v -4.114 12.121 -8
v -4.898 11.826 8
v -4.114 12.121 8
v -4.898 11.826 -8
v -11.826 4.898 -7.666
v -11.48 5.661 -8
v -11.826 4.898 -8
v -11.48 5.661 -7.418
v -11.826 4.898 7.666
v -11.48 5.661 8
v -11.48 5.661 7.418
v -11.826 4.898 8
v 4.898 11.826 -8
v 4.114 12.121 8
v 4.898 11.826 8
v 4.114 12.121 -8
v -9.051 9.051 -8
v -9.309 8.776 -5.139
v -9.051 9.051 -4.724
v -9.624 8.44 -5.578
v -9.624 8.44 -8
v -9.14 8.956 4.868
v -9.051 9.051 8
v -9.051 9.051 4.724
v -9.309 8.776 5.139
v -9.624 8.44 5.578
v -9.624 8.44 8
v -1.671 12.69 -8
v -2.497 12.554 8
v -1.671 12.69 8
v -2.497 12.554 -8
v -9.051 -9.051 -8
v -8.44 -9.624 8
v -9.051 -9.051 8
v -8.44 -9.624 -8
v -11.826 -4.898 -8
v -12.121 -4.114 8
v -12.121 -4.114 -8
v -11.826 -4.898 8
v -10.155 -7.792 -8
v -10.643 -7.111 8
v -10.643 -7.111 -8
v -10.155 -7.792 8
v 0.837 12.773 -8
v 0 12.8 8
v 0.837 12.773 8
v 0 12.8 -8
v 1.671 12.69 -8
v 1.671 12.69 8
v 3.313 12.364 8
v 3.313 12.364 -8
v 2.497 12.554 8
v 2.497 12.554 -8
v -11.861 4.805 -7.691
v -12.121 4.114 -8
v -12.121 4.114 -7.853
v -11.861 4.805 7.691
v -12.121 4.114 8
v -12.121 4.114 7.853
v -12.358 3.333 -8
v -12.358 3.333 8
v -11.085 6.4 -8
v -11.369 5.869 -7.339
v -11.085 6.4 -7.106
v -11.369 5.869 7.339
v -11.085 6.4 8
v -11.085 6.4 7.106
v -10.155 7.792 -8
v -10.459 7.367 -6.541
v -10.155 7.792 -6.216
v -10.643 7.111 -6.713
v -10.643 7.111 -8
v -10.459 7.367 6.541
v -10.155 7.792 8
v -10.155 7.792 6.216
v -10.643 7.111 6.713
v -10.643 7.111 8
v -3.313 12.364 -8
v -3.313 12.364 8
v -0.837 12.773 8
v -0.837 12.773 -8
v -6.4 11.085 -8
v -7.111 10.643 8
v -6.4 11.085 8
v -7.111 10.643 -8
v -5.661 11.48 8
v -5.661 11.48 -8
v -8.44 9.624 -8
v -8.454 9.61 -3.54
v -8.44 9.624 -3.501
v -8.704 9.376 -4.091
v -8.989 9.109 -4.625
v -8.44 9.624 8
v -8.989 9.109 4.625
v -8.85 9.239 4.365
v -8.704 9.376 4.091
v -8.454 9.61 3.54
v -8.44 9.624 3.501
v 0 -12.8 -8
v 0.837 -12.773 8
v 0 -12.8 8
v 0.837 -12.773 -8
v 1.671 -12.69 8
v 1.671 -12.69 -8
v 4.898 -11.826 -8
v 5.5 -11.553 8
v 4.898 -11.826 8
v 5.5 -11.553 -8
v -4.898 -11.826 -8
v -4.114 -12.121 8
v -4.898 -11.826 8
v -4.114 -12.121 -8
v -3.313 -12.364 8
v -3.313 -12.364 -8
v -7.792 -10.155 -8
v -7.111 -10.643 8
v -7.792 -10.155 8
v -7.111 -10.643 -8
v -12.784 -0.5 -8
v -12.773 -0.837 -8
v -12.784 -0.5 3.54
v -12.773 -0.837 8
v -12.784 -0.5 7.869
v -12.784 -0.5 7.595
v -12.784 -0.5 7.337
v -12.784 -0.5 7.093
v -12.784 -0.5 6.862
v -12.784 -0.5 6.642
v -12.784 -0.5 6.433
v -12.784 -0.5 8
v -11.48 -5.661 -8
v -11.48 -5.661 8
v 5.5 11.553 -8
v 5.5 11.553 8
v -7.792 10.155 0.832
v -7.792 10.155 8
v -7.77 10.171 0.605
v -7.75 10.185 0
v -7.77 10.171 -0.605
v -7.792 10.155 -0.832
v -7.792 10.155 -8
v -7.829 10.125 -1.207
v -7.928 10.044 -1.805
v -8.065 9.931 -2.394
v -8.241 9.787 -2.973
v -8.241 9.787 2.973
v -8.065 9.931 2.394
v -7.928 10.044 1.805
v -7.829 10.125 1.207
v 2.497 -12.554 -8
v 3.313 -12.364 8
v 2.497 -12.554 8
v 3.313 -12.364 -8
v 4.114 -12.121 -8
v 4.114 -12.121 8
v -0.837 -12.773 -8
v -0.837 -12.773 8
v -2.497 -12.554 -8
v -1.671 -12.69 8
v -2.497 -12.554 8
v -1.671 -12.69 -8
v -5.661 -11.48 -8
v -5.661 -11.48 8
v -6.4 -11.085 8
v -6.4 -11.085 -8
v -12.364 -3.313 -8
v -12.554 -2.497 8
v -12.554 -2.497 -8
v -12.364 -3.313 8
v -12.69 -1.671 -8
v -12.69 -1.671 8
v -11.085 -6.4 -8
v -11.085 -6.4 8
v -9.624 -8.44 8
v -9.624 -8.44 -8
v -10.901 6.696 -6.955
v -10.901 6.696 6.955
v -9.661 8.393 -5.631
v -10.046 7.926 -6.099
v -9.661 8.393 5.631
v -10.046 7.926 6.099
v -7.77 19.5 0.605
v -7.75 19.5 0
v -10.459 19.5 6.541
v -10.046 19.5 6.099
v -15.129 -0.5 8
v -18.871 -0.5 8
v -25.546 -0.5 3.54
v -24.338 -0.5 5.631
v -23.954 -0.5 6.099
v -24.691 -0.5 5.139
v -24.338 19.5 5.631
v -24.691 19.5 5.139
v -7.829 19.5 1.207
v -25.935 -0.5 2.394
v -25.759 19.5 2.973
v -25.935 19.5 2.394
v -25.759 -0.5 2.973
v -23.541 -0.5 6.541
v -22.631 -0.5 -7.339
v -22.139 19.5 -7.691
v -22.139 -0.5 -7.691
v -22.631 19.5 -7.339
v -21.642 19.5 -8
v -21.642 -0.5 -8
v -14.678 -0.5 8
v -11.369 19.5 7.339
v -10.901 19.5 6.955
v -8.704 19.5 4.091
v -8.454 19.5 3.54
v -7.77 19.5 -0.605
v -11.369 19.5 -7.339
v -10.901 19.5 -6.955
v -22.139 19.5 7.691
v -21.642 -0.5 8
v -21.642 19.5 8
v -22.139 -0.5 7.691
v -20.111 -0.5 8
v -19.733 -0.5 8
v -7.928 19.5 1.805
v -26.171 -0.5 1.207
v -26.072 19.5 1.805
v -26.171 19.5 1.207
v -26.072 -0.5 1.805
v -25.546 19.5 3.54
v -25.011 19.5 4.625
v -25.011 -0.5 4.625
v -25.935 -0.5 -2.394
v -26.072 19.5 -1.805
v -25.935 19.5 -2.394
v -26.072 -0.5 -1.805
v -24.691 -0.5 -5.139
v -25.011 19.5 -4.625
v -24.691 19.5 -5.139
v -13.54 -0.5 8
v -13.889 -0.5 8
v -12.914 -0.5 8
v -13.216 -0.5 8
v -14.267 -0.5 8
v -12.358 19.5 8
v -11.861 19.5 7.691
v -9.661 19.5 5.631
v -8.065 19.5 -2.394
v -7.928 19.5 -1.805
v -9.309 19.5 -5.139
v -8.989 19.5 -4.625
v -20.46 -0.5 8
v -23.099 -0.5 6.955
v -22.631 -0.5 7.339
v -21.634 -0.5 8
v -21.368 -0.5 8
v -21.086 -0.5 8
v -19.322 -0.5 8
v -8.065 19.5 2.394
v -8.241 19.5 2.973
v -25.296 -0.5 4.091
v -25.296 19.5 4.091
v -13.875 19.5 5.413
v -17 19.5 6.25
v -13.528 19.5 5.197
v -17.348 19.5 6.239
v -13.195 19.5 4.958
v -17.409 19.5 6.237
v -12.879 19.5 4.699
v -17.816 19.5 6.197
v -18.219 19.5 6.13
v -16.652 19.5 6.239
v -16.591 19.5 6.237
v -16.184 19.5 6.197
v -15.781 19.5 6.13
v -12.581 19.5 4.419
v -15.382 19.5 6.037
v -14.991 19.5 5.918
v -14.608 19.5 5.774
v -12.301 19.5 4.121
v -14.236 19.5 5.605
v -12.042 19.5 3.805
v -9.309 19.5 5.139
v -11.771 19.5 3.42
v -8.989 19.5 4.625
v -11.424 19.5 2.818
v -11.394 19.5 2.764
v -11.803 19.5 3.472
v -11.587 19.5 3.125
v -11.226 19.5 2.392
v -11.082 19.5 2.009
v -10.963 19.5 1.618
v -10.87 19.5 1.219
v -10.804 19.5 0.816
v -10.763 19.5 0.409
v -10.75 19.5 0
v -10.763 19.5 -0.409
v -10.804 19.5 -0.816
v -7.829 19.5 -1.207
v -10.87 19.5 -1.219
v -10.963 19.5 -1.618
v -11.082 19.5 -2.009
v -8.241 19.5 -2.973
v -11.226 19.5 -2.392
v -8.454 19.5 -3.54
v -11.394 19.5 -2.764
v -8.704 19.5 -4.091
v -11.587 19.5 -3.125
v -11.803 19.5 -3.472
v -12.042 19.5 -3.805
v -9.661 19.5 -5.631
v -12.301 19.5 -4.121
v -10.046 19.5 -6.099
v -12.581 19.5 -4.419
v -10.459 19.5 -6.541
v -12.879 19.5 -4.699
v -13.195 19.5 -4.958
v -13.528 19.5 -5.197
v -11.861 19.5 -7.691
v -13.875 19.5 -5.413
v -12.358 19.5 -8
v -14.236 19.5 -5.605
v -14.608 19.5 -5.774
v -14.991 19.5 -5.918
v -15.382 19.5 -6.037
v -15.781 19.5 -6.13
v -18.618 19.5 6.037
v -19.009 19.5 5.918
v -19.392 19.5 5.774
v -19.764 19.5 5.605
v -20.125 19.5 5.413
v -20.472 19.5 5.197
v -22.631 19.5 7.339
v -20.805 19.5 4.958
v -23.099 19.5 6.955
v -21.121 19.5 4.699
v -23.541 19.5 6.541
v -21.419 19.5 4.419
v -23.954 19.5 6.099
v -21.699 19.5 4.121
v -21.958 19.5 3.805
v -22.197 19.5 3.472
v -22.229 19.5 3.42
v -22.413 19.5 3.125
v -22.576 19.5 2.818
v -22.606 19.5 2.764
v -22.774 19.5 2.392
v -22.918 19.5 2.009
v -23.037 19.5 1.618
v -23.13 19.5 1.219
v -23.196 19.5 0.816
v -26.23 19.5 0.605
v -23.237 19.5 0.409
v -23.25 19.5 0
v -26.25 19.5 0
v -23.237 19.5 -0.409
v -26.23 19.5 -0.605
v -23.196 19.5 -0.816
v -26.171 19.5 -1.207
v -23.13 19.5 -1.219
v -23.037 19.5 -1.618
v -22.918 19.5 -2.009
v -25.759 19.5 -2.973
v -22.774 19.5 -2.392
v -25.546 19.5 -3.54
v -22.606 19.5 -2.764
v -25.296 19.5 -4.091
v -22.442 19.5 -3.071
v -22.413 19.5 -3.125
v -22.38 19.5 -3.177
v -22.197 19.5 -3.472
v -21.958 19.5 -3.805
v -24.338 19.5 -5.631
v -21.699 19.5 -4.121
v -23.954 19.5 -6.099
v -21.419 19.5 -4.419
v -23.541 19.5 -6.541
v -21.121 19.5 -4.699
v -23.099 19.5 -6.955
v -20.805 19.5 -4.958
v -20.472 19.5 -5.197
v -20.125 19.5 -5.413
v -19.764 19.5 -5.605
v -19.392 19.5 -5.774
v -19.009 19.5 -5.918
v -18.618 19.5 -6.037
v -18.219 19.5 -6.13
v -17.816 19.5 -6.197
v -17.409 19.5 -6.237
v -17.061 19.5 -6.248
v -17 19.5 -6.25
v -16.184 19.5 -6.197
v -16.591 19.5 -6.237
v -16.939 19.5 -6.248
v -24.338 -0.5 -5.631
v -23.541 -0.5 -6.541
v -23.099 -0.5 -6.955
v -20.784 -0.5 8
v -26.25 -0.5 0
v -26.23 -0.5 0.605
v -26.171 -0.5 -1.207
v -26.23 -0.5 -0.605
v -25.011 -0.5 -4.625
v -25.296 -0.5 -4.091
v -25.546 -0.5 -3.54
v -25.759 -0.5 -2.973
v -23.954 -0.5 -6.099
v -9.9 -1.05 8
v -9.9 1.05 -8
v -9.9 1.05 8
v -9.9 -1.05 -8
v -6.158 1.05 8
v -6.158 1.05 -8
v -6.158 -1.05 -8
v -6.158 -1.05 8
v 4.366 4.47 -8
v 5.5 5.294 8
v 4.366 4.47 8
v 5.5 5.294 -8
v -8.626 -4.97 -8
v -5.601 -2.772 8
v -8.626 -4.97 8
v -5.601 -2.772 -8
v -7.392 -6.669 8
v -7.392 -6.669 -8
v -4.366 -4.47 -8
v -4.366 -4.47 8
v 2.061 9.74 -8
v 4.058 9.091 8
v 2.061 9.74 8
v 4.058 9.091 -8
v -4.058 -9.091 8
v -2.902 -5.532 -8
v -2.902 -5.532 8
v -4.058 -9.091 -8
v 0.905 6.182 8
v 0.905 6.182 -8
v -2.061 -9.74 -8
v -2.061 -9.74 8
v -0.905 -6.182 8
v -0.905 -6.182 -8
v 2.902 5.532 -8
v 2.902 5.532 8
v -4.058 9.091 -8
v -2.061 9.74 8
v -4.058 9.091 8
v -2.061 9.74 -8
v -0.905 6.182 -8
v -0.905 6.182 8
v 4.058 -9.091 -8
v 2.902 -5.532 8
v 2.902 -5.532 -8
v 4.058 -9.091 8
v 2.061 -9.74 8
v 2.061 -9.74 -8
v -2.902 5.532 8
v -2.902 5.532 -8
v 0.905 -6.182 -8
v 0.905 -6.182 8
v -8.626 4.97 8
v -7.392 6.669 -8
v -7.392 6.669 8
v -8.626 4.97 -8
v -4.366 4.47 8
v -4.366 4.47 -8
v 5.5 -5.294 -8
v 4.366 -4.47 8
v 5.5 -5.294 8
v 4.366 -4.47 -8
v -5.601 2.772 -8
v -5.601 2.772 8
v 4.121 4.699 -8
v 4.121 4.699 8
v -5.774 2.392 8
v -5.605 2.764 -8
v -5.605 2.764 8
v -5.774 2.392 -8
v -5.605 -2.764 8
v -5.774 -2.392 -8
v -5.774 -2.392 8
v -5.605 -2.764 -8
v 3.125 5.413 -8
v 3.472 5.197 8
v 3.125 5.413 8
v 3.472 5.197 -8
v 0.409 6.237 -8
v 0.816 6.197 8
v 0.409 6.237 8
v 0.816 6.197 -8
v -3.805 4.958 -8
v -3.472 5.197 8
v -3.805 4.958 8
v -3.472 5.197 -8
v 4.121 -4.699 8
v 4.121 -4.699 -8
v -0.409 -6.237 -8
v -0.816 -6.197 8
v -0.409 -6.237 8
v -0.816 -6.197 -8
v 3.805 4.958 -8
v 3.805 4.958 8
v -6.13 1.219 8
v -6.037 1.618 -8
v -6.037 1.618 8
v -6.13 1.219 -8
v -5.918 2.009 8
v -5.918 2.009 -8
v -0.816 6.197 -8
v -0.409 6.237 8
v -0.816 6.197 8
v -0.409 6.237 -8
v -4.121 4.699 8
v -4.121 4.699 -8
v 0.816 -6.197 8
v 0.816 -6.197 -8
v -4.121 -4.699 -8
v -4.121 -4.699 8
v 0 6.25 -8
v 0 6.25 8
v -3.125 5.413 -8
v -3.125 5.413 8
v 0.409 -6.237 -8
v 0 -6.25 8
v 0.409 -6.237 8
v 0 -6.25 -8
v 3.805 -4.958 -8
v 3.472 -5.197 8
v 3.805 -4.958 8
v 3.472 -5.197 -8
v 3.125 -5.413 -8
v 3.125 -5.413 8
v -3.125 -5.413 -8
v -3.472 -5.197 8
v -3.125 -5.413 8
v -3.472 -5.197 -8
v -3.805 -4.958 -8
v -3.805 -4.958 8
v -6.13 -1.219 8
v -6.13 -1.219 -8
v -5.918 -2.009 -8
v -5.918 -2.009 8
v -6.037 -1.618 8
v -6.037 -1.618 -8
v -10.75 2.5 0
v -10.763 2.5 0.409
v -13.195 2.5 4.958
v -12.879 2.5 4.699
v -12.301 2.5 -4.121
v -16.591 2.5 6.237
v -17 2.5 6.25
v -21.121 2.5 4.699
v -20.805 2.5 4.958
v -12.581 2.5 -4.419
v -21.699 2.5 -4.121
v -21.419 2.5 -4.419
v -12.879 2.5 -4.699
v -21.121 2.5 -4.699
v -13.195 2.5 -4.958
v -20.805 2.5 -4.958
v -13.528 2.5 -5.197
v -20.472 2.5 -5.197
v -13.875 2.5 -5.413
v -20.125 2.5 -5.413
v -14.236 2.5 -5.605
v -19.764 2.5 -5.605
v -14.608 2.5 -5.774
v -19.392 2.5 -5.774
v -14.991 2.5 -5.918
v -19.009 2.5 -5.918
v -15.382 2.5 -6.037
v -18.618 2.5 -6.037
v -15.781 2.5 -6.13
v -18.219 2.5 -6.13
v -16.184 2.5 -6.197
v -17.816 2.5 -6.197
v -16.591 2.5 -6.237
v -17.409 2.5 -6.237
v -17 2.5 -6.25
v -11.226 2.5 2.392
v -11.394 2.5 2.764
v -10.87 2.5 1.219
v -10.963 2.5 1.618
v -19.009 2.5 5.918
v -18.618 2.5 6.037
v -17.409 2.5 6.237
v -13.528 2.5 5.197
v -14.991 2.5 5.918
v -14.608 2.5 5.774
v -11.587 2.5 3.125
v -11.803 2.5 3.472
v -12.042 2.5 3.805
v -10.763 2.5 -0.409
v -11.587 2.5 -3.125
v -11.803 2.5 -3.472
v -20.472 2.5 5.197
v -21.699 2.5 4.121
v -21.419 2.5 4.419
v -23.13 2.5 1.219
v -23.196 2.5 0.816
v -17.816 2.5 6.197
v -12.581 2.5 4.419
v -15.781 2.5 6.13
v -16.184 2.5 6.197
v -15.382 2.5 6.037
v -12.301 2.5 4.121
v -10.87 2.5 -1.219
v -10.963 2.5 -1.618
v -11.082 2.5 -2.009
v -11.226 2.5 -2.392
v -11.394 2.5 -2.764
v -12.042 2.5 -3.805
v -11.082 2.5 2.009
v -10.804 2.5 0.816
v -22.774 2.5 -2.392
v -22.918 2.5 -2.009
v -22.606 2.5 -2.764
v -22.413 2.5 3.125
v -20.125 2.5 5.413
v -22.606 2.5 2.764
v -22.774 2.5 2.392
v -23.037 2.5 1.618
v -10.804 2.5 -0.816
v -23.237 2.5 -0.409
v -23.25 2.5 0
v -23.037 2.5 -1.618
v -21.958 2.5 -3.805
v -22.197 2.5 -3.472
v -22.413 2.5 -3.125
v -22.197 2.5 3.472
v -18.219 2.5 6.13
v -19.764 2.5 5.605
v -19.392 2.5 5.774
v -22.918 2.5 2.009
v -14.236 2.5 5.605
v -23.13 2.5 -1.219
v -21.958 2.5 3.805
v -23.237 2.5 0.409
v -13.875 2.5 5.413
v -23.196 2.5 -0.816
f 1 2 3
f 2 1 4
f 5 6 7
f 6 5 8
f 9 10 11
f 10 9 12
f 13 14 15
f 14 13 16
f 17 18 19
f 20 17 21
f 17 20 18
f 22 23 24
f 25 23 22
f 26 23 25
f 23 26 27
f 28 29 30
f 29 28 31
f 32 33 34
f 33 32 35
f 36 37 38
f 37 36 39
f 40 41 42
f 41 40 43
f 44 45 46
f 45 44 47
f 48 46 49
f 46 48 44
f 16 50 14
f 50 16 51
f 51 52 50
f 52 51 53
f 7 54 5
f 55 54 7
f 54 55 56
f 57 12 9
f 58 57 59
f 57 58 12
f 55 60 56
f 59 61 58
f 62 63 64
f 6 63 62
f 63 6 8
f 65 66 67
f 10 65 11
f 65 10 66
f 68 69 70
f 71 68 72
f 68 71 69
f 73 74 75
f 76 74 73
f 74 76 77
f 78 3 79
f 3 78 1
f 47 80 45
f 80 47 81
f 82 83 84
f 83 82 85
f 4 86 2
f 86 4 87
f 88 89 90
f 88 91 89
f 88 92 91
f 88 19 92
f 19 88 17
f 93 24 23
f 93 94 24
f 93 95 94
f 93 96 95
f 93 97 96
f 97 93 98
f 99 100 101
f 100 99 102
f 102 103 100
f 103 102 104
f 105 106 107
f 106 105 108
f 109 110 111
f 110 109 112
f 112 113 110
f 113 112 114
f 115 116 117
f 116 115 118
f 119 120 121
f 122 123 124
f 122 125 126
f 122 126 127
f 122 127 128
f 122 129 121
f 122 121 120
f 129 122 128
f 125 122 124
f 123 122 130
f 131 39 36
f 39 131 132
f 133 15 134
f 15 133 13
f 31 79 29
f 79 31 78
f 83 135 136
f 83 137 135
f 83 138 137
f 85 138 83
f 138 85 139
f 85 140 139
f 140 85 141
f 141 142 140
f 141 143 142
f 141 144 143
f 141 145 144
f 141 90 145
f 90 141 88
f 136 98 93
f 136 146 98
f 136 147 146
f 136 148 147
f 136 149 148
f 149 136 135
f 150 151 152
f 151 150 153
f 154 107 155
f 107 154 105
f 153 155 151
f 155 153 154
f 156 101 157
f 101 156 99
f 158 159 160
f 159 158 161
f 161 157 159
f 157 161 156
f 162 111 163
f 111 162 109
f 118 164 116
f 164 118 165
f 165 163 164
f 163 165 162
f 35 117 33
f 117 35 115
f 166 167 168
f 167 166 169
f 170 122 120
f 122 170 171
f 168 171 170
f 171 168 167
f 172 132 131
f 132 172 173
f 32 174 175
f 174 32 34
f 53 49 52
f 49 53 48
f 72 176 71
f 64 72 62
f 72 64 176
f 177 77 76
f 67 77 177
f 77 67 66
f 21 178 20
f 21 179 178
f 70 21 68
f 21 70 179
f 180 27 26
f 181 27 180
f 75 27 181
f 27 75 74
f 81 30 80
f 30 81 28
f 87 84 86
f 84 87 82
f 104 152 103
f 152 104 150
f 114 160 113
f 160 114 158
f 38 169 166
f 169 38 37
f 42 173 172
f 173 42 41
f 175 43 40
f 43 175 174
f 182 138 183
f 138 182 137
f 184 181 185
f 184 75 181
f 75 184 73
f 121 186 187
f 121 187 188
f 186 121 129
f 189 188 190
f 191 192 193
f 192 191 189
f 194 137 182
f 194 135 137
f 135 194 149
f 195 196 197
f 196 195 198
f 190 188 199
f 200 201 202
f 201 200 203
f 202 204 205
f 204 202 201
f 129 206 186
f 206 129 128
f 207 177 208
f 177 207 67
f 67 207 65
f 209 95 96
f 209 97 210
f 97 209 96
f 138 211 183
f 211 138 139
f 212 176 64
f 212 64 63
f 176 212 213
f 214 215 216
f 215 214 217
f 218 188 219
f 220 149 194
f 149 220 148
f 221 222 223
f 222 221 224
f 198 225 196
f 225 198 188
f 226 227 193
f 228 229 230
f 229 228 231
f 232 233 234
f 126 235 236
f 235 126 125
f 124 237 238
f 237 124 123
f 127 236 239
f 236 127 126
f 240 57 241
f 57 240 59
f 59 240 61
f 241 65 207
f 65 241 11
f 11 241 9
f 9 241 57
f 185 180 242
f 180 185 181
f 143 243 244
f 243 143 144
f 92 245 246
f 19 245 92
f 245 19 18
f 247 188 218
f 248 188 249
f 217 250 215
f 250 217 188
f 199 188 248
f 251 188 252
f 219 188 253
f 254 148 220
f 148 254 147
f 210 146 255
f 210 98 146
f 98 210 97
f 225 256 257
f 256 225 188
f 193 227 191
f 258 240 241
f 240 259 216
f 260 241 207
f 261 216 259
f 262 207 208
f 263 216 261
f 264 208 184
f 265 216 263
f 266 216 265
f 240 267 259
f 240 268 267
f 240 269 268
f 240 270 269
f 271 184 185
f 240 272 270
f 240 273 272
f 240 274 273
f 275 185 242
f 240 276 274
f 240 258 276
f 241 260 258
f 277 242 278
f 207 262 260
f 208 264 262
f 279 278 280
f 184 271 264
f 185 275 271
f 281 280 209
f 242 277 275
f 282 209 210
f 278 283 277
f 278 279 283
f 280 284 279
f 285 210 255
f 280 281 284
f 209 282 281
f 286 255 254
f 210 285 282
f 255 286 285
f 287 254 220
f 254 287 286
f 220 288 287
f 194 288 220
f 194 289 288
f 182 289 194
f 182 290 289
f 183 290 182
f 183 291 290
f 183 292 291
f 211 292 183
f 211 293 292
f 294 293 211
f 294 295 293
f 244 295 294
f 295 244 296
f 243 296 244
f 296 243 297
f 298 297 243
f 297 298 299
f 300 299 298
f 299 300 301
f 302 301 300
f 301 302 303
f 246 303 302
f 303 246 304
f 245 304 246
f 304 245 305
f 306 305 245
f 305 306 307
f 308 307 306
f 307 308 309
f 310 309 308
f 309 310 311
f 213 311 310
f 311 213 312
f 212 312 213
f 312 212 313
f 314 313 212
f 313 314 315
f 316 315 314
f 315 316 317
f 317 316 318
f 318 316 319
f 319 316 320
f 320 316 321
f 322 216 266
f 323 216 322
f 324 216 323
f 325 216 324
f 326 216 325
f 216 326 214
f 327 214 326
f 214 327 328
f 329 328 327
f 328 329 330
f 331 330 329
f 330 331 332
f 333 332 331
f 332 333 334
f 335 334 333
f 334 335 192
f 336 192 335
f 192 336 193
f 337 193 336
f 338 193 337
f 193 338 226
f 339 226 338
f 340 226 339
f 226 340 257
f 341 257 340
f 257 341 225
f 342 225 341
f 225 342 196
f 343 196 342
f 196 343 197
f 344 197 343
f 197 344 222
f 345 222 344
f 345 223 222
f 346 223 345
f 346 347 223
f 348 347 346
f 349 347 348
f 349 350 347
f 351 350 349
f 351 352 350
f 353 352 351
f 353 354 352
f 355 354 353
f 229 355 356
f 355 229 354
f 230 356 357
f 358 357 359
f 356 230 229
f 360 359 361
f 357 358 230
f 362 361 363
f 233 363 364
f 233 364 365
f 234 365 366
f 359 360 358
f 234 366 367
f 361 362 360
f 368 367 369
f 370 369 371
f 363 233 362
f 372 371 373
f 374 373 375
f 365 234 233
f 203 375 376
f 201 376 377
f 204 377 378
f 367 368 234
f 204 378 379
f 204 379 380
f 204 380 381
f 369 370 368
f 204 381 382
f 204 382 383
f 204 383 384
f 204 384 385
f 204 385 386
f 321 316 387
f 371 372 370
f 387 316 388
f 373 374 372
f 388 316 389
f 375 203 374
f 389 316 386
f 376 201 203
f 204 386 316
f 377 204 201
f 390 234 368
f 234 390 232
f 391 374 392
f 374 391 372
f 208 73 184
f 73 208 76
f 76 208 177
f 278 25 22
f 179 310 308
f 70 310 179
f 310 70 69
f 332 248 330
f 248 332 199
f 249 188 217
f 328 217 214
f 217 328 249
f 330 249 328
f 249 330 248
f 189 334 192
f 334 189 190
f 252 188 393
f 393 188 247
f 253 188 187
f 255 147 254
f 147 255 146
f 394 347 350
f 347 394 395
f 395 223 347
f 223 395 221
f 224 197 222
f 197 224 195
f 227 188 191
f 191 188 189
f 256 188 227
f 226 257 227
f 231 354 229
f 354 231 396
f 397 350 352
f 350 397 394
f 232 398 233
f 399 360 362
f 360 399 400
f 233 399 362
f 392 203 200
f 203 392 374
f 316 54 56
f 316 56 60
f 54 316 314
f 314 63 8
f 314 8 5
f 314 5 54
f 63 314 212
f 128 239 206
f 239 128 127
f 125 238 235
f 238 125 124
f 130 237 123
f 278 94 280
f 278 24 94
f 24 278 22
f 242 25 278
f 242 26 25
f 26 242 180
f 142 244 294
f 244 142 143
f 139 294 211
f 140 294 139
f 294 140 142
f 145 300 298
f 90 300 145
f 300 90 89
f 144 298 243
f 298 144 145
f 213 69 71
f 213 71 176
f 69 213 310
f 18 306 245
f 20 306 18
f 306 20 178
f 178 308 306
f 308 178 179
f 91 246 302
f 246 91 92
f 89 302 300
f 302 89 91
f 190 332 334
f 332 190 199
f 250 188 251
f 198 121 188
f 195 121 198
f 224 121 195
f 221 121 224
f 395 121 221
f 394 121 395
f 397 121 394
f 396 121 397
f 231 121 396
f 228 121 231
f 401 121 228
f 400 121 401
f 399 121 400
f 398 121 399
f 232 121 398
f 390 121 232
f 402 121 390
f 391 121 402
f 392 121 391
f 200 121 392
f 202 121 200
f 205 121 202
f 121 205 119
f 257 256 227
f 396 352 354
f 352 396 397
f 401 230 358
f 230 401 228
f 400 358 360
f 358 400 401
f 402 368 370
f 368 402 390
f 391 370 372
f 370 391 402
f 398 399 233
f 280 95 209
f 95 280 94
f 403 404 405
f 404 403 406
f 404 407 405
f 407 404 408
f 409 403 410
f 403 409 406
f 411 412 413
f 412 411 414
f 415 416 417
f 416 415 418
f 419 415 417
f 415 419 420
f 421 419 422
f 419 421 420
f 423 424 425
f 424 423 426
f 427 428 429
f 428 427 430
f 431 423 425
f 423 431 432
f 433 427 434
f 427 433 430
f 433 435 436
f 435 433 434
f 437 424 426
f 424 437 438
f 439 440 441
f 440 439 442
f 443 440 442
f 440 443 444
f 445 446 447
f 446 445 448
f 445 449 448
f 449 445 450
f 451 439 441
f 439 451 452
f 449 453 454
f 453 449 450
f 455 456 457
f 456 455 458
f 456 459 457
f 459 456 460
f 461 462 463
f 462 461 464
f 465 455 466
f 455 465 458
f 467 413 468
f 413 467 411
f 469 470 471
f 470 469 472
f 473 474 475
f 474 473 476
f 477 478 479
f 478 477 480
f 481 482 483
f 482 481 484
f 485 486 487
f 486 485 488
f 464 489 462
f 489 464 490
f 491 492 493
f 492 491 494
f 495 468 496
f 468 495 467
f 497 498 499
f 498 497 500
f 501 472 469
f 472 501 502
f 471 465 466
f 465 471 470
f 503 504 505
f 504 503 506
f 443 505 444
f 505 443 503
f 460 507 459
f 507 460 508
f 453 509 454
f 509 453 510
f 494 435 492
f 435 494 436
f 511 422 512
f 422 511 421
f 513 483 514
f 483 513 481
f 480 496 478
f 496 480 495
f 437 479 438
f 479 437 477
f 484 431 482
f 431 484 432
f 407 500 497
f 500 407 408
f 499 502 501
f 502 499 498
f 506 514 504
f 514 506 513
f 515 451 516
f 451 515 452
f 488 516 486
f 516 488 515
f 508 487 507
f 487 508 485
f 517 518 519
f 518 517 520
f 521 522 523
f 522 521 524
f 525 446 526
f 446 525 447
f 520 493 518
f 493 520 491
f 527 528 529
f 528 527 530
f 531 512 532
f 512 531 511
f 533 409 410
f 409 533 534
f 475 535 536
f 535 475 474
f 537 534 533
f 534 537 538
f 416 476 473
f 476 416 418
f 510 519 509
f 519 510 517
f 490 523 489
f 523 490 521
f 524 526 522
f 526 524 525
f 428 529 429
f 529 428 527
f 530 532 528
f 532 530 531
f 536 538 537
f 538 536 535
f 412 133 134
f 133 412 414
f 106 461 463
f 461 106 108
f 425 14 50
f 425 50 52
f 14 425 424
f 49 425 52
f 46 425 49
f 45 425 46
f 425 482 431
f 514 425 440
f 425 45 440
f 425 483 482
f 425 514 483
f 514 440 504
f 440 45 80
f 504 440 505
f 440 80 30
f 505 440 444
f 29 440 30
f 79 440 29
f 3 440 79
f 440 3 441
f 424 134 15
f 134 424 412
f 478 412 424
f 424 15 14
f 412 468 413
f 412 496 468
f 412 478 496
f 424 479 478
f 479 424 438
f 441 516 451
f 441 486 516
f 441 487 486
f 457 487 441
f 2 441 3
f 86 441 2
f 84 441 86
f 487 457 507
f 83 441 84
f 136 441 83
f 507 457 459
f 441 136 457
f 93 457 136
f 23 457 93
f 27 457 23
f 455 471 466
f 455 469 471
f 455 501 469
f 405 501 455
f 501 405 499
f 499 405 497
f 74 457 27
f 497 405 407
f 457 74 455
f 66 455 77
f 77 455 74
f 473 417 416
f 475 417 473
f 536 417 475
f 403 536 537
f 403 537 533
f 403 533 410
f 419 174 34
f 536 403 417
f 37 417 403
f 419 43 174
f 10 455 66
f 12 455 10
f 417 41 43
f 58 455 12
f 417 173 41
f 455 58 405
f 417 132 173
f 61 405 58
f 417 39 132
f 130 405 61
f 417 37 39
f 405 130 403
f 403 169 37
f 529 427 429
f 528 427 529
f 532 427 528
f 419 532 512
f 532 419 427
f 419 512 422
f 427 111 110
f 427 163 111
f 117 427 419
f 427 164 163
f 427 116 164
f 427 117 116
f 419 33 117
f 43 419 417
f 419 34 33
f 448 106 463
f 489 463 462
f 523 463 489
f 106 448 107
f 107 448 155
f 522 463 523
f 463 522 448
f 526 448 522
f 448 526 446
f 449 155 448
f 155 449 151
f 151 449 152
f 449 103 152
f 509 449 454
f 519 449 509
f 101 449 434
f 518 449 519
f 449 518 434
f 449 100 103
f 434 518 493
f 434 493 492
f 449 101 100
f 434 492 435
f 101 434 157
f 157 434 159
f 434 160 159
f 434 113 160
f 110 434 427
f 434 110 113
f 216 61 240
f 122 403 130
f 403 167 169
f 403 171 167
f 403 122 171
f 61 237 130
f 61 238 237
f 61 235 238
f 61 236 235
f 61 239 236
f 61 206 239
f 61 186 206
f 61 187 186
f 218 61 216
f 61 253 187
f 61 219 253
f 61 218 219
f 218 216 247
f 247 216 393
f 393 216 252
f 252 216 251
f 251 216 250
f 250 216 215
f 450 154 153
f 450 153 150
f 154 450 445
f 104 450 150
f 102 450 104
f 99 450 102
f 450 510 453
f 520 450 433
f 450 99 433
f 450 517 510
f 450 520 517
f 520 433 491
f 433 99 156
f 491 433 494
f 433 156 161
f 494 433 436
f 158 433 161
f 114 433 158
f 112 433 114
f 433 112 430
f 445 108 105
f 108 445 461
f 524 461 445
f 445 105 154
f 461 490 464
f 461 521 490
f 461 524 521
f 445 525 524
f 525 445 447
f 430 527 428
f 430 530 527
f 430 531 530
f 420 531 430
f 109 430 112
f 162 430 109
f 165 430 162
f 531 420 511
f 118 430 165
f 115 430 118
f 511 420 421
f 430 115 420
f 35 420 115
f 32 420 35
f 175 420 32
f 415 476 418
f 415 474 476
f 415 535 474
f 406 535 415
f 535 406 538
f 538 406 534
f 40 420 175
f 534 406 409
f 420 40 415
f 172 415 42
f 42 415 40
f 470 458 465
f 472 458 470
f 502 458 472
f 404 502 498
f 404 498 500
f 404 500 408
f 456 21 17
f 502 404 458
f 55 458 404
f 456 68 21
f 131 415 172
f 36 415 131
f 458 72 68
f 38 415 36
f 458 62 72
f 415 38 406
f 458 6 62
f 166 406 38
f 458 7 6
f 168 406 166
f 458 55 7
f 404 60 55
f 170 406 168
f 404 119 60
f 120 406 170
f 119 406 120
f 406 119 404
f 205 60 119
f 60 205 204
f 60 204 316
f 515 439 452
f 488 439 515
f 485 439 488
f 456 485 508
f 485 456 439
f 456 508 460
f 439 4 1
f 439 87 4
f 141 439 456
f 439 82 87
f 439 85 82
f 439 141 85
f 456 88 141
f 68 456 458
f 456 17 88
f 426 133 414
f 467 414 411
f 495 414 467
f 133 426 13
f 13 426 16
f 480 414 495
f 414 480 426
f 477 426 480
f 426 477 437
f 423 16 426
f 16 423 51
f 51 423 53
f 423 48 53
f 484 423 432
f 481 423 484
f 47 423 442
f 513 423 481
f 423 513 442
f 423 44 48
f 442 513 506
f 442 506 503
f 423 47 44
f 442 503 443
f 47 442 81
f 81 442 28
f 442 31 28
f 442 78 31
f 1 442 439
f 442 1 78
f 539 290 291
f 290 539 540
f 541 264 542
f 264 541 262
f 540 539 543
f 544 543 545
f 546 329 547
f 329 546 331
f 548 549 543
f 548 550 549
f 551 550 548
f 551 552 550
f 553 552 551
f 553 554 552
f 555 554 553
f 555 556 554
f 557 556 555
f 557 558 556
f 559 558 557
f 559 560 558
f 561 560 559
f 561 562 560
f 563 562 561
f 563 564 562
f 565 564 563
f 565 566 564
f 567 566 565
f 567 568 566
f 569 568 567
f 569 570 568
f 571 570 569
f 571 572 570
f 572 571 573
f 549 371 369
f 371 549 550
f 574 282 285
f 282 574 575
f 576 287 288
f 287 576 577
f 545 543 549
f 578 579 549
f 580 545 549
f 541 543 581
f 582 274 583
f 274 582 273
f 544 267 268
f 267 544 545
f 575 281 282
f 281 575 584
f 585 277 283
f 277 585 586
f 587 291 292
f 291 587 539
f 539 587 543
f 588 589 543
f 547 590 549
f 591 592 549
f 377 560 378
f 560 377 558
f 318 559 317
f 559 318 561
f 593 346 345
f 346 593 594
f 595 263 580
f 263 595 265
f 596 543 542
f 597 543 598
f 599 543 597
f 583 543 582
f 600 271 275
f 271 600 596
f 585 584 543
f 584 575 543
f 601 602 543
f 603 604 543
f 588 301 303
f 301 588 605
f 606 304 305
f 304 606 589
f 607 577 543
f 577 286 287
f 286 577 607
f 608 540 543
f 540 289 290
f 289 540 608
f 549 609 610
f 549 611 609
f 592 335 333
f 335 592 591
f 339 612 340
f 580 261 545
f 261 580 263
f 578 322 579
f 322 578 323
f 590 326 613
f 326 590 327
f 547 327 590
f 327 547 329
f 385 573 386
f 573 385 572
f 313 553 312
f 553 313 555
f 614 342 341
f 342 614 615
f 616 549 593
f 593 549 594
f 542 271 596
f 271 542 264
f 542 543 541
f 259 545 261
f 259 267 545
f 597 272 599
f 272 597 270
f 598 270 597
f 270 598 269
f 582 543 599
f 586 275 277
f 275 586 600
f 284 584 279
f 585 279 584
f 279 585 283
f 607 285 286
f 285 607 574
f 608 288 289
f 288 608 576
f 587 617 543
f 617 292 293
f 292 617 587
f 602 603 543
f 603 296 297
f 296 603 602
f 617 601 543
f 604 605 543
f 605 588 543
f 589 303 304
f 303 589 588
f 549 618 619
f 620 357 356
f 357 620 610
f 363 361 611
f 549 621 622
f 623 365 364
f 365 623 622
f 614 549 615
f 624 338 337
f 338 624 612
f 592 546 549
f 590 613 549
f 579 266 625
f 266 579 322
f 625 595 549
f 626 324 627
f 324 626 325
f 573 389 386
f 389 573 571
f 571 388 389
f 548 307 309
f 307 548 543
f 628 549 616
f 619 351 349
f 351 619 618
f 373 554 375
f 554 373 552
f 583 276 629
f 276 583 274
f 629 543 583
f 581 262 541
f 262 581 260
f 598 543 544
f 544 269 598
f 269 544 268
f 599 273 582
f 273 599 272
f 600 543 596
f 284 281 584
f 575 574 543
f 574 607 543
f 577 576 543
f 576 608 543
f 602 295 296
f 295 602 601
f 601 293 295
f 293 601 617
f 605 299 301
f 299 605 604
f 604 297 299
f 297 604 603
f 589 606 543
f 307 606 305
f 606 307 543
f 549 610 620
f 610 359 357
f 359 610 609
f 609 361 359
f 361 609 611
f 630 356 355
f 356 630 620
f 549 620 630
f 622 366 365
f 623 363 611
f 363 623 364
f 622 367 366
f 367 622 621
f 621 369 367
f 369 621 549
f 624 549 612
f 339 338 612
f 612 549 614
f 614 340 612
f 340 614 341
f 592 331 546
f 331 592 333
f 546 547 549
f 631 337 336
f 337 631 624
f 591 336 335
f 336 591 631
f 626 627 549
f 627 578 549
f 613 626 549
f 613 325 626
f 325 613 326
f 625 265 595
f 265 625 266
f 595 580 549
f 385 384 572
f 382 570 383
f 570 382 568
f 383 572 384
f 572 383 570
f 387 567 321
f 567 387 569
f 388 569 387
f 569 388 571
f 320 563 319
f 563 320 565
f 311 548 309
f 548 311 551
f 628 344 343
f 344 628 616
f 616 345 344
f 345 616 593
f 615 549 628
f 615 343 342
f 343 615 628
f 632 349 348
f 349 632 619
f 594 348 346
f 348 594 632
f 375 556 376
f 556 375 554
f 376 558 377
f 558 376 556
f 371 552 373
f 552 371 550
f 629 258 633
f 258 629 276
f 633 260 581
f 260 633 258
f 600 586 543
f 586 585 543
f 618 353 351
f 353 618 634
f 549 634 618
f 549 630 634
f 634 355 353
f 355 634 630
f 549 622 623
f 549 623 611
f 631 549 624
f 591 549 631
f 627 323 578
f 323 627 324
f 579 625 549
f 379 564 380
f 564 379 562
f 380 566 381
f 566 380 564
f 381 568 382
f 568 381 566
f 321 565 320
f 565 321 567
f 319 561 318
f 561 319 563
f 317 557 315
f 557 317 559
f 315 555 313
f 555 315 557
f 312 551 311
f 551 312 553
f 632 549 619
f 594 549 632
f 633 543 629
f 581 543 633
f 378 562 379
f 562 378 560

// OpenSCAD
// serves only for location of M9 holes in MDF plate.
//  print 4 pieces

DiaLM12= 12.5;
DiaOuterLM12=25.6;
HeightLM12= 29.6;

difference()

    {                 
        union()   
        
    {  
     // Y:
        cylinder(h=HeightLM12,d=DiaOuterLM12,center=true,$fn=96)  ;    
     // X        
       translate([-17,2.5+7,0]) 
         rotate([90,0,0])  
       cylinder(h=20,d=DiaLM12+6,center=true,$fn=96)  ;  
    }          
      
   union() 
    {        
        
  cylinder(h=HeightLM12+1,d=DiaLM12,center=true,$fn=96)  ;    
  
        for(z=[0:36:180])
        {
        rotate([0,0,z])        
cube([(HeightLM12+2)/2+4,2.1,HeightLM12+1],center=true);        //
        }                    
                
      // remove part bottom
    translate([10.50,0,0])    
              
cube([10,50,HeightLM12+1],center=true);        //
               
        // print on one of both sides:
        
    translate([0,0,13]) 
cube([50,50,10],center=true);        //
          
         translate([0,0,-13])    
cube([50,50,10],center=true);        //
               
        // demo section :
        /*
          translate([0,0,10])    
cube([60,50,20],center=true);        //
      */        
        
       translate([-17,5.5+7,0])                
         rotate([90,0,0])         
       cylinder(h=20,d=DiaLM12,center=true,$fn=96)  ;  
        
    }  
              
}       
